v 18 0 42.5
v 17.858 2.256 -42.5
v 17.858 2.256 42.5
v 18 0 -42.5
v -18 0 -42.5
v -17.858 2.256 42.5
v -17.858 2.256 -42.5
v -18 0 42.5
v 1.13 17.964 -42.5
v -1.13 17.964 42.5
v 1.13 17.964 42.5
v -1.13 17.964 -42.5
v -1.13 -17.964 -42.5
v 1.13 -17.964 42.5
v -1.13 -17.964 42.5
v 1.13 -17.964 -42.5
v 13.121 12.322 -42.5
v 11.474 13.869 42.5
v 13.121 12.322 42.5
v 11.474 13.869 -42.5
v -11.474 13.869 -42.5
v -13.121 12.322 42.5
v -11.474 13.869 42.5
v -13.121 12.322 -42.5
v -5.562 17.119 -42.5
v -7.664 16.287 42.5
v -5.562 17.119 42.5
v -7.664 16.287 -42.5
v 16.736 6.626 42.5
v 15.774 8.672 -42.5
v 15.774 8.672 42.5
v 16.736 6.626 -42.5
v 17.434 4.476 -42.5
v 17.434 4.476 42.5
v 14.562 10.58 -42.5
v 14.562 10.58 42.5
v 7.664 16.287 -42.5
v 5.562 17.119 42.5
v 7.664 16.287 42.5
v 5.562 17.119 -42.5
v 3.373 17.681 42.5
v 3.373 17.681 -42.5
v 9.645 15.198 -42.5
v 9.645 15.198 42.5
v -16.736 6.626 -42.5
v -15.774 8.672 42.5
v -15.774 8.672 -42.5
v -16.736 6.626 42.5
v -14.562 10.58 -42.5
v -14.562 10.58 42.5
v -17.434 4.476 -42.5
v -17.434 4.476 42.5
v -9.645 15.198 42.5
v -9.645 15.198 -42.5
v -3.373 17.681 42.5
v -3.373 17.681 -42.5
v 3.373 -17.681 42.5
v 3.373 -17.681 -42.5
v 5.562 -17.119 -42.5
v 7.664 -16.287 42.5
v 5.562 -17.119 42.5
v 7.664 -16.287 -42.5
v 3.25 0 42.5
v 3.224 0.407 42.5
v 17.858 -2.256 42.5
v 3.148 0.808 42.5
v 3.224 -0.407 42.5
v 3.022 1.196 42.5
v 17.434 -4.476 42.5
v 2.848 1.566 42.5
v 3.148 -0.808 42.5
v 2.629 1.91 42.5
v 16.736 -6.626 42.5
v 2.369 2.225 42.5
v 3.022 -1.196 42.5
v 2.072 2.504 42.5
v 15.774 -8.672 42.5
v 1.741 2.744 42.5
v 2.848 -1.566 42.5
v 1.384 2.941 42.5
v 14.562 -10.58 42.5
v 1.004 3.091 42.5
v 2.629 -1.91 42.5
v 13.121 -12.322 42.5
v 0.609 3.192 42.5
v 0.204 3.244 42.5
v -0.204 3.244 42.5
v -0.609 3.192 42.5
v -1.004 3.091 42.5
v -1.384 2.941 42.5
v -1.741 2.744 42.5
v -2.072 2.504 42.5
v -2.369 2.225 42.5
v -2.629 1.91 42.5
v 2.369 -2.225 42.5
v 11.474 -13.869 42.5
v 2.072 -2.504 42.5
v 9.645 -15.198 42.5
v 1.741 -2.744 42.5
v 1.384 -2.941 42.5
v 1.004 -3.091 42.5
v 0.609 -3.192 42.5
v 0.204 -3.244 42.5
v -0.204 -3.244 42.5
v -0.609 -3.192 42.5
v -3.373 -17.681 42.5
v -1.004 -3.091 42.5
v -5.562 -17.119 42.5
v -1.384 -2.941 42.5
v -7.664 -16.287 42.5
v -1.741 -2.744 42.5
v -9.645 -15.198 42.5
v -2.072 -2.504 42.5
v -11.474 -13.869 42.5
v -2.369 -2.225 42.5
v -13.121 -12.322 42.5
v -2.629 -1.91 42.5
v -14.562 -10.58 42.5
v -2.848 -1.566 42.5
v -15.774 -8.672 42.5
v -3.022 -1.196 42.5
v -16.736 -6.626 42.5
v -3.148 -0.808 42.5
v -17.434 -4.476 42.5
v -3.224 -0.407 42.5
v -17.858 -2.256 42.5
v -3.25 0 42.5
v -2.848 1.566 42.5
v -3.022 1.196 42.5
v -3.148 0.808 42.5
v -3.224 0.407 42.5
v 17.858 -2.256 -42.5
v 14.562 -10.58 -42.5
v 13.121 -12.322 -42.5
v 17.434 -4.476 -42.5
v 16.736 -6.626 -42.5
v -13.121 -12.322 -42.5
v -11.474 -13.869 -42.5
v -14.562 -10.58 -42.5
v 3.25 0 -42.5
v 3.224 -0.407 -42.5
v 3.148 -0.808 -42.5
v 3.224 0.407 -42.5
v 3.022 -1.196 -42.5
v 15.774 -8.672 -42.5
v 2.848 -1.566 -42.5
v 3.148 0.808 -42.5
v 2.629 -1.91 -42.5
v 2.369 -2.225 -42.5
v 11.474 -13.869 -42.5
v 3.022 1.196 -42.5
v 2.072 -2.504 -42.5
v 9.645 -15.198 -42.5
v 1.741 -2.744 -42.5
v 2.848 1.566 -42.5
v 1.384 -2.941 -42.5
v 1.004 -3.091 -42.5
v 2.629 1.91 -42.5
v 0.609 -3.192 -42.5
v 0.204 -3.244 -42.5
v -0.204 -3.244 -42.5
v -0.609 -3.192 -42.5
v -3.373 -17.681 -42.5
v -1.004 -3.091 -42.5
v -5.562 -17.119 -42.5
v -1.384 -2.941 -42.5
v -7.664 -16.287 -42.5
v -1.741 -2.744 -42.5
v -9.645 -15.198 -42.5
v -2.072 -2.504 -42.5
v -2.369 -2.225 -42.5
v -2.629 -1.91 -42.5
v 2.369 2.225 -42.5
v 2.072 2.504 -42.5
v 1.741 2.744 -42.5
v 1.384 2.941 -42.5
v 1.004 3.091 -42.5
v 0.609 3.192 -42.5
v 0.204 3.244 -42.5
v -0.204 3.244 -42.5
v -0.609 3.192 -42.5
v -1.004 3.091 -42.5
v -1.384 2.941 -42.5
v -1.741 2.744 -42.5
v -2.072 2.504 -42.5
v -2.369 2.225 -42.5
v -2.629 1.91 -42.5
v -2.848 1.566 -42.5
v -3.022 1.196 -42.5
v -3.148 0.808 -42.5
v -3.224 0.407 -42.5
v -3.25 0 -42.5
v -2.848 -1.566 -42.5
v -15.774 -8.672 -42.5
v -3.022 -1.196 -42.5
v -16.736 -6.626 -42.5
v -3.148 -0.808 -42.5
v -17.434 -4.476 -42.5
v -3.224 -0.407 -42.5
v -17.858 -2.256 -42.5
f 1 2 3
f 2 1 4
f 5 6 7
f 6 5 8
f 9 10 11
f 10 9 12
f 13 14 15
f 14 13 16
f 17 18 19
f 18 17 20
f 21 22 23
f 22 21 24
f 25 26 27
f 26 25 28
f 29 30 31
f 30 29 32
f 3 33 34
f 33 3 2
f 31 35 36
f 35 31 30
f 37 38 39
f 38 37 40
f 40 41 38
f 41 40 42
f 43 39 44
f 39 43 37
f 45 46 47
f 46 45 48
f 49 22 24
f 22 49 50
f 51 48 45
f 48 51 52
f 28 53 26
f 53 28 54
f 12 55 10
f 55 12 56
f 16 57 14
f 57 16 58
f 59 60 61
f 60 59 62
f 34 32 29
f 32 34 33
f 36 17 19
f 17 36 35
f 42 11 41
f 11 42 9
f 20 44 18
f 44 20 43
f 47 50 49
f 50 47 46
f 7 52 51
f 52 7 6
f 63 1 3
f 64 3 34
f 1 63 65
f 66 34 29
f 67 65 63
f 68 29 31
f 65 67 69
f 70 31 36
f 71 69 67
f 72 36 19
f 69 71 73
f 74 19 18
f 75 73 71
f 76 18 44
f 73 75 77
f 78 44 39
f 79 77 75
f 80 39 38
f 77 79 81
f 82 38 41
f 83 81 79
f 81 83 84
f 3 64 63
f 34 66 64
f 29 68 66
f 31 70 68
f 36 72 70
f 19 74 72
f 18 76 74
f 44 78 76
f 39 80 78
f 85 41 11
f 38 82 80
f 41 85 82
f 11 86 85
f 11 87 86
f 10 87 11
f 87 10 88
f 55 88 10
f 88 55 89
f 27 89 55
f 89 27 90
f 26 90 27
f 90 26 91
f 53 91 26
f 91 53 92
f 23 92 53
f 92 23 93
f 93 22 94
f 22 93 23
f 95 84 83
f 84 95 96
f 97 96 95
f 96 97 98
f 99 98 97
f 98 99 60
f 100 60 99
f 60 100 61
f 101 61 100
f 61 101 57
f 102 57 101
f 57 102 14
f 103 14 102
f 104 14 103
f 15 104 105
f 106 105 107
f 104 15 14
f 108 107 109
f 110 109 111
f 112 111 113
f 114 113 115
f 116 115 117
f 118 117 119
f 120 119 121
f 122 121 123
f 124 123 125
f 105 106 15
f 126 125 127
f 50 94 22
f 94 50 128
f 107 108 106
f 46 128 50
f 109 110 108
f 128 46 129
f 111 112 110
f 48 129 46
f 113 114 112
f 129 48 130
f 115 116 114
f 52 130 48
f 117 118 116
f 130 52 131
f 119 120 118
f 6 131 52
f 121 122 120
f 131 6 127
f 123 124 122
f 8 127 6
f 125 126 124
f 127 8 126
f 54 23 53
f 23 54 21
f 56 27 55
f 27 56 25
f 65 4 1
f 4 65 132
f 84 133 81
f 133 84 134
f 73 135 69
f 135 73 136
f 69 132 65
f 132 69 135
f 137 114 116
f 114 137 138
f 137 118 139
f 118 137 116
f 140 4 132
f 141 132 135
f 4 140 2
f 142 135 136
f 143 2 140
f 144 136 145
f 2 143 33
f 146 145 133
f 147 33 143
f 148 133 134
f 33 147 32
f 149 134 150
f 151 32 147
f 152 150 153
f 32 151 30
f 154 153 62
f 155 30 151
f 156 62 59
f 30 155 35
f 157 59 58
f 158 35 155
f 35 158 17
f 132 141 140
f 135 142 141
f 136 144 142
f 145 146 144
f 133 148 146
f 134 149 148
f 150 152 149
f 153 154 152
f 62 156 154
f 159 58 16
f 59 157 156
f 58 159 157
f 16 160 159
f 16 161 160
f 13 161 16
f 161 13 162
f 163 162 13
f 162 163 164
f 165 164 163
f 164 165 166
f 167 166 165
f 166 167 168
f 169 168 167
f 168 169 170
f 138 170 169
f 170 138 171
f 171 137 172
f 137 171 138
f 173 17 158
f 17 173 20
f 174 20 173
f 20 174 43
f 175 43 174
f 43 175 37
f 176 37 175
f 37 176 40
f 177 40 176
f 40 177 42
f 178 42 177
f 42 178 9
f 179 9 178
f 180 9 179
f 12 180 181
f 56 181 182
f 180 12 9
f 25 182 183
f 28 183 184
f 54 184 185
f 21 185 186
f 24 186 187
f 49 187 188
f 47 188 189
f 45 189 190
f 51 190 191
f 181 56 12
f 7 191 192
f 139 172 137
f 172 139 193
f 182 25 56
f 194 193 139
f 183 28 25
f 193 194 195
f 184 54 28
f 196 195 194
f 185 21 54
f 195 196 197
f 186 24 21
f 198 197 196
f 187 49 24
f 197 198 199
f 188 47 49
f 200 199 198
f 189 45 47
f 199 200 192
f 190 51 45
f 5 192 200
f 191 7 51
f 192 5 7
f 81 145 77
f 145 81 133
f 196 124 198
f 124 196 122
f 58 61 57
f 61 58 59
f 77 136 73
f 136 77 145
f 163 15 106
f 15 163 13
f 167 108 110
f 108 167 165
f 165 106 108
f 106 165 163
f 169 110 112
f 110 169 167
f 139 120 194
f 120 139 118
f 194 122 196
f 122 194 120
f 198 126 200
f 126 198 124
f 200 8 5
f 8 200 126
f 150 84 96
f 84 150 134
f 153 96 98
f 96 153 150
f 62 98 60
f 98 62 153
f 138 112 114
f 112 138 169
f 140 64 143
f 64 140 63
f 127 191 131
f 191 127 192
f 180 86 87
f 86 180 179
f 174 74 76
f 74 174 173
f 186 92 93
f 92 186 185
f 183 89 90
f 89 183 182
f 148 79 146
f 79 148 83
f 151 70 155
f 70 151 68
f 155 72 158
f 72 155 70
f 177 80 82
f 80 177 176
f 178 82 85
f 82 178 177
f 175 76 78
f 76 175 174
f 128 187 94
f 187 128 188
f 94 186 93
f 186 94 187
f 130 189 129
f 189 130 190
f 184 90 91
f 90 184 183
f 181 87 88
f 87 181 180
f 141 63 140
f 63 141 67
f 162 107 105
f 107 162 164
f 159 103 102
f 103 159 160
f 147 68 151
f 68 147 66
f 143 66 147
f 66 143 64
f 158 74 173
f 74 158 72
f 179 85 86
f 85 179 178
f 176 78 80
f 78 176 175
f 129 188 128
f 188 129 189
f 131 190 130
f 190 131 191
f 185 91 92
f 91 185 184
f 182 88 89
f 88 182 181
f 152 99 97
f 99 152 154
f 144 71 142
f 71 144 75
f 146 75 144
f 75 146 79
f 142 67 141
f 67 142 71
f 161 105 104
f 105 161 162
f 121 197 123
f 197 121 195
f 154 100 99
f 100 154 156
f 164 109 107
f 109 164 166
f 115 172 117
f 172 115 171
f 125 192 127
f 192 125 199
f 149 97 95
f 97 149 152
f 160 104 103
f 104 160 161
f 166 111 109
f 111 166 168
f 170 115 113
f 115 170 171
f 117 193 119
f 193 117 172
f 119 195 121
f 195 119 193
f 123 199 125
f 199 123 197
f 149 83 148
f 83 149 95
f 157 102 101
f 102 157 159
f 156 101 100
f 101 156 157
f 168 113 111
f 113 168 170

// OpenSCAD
$fn = 50;


difference() {
	union() {
		translate(v = [0, 0, -42.5000000000]) {
			cylinder(h = 85, r = 18.0000000000);
		}
	}
	union() {
		translate(v = [0, 0, -100.0000000000]) {
			cylinder(h = 200, r = 3.2500000000);
		}
	}
}
